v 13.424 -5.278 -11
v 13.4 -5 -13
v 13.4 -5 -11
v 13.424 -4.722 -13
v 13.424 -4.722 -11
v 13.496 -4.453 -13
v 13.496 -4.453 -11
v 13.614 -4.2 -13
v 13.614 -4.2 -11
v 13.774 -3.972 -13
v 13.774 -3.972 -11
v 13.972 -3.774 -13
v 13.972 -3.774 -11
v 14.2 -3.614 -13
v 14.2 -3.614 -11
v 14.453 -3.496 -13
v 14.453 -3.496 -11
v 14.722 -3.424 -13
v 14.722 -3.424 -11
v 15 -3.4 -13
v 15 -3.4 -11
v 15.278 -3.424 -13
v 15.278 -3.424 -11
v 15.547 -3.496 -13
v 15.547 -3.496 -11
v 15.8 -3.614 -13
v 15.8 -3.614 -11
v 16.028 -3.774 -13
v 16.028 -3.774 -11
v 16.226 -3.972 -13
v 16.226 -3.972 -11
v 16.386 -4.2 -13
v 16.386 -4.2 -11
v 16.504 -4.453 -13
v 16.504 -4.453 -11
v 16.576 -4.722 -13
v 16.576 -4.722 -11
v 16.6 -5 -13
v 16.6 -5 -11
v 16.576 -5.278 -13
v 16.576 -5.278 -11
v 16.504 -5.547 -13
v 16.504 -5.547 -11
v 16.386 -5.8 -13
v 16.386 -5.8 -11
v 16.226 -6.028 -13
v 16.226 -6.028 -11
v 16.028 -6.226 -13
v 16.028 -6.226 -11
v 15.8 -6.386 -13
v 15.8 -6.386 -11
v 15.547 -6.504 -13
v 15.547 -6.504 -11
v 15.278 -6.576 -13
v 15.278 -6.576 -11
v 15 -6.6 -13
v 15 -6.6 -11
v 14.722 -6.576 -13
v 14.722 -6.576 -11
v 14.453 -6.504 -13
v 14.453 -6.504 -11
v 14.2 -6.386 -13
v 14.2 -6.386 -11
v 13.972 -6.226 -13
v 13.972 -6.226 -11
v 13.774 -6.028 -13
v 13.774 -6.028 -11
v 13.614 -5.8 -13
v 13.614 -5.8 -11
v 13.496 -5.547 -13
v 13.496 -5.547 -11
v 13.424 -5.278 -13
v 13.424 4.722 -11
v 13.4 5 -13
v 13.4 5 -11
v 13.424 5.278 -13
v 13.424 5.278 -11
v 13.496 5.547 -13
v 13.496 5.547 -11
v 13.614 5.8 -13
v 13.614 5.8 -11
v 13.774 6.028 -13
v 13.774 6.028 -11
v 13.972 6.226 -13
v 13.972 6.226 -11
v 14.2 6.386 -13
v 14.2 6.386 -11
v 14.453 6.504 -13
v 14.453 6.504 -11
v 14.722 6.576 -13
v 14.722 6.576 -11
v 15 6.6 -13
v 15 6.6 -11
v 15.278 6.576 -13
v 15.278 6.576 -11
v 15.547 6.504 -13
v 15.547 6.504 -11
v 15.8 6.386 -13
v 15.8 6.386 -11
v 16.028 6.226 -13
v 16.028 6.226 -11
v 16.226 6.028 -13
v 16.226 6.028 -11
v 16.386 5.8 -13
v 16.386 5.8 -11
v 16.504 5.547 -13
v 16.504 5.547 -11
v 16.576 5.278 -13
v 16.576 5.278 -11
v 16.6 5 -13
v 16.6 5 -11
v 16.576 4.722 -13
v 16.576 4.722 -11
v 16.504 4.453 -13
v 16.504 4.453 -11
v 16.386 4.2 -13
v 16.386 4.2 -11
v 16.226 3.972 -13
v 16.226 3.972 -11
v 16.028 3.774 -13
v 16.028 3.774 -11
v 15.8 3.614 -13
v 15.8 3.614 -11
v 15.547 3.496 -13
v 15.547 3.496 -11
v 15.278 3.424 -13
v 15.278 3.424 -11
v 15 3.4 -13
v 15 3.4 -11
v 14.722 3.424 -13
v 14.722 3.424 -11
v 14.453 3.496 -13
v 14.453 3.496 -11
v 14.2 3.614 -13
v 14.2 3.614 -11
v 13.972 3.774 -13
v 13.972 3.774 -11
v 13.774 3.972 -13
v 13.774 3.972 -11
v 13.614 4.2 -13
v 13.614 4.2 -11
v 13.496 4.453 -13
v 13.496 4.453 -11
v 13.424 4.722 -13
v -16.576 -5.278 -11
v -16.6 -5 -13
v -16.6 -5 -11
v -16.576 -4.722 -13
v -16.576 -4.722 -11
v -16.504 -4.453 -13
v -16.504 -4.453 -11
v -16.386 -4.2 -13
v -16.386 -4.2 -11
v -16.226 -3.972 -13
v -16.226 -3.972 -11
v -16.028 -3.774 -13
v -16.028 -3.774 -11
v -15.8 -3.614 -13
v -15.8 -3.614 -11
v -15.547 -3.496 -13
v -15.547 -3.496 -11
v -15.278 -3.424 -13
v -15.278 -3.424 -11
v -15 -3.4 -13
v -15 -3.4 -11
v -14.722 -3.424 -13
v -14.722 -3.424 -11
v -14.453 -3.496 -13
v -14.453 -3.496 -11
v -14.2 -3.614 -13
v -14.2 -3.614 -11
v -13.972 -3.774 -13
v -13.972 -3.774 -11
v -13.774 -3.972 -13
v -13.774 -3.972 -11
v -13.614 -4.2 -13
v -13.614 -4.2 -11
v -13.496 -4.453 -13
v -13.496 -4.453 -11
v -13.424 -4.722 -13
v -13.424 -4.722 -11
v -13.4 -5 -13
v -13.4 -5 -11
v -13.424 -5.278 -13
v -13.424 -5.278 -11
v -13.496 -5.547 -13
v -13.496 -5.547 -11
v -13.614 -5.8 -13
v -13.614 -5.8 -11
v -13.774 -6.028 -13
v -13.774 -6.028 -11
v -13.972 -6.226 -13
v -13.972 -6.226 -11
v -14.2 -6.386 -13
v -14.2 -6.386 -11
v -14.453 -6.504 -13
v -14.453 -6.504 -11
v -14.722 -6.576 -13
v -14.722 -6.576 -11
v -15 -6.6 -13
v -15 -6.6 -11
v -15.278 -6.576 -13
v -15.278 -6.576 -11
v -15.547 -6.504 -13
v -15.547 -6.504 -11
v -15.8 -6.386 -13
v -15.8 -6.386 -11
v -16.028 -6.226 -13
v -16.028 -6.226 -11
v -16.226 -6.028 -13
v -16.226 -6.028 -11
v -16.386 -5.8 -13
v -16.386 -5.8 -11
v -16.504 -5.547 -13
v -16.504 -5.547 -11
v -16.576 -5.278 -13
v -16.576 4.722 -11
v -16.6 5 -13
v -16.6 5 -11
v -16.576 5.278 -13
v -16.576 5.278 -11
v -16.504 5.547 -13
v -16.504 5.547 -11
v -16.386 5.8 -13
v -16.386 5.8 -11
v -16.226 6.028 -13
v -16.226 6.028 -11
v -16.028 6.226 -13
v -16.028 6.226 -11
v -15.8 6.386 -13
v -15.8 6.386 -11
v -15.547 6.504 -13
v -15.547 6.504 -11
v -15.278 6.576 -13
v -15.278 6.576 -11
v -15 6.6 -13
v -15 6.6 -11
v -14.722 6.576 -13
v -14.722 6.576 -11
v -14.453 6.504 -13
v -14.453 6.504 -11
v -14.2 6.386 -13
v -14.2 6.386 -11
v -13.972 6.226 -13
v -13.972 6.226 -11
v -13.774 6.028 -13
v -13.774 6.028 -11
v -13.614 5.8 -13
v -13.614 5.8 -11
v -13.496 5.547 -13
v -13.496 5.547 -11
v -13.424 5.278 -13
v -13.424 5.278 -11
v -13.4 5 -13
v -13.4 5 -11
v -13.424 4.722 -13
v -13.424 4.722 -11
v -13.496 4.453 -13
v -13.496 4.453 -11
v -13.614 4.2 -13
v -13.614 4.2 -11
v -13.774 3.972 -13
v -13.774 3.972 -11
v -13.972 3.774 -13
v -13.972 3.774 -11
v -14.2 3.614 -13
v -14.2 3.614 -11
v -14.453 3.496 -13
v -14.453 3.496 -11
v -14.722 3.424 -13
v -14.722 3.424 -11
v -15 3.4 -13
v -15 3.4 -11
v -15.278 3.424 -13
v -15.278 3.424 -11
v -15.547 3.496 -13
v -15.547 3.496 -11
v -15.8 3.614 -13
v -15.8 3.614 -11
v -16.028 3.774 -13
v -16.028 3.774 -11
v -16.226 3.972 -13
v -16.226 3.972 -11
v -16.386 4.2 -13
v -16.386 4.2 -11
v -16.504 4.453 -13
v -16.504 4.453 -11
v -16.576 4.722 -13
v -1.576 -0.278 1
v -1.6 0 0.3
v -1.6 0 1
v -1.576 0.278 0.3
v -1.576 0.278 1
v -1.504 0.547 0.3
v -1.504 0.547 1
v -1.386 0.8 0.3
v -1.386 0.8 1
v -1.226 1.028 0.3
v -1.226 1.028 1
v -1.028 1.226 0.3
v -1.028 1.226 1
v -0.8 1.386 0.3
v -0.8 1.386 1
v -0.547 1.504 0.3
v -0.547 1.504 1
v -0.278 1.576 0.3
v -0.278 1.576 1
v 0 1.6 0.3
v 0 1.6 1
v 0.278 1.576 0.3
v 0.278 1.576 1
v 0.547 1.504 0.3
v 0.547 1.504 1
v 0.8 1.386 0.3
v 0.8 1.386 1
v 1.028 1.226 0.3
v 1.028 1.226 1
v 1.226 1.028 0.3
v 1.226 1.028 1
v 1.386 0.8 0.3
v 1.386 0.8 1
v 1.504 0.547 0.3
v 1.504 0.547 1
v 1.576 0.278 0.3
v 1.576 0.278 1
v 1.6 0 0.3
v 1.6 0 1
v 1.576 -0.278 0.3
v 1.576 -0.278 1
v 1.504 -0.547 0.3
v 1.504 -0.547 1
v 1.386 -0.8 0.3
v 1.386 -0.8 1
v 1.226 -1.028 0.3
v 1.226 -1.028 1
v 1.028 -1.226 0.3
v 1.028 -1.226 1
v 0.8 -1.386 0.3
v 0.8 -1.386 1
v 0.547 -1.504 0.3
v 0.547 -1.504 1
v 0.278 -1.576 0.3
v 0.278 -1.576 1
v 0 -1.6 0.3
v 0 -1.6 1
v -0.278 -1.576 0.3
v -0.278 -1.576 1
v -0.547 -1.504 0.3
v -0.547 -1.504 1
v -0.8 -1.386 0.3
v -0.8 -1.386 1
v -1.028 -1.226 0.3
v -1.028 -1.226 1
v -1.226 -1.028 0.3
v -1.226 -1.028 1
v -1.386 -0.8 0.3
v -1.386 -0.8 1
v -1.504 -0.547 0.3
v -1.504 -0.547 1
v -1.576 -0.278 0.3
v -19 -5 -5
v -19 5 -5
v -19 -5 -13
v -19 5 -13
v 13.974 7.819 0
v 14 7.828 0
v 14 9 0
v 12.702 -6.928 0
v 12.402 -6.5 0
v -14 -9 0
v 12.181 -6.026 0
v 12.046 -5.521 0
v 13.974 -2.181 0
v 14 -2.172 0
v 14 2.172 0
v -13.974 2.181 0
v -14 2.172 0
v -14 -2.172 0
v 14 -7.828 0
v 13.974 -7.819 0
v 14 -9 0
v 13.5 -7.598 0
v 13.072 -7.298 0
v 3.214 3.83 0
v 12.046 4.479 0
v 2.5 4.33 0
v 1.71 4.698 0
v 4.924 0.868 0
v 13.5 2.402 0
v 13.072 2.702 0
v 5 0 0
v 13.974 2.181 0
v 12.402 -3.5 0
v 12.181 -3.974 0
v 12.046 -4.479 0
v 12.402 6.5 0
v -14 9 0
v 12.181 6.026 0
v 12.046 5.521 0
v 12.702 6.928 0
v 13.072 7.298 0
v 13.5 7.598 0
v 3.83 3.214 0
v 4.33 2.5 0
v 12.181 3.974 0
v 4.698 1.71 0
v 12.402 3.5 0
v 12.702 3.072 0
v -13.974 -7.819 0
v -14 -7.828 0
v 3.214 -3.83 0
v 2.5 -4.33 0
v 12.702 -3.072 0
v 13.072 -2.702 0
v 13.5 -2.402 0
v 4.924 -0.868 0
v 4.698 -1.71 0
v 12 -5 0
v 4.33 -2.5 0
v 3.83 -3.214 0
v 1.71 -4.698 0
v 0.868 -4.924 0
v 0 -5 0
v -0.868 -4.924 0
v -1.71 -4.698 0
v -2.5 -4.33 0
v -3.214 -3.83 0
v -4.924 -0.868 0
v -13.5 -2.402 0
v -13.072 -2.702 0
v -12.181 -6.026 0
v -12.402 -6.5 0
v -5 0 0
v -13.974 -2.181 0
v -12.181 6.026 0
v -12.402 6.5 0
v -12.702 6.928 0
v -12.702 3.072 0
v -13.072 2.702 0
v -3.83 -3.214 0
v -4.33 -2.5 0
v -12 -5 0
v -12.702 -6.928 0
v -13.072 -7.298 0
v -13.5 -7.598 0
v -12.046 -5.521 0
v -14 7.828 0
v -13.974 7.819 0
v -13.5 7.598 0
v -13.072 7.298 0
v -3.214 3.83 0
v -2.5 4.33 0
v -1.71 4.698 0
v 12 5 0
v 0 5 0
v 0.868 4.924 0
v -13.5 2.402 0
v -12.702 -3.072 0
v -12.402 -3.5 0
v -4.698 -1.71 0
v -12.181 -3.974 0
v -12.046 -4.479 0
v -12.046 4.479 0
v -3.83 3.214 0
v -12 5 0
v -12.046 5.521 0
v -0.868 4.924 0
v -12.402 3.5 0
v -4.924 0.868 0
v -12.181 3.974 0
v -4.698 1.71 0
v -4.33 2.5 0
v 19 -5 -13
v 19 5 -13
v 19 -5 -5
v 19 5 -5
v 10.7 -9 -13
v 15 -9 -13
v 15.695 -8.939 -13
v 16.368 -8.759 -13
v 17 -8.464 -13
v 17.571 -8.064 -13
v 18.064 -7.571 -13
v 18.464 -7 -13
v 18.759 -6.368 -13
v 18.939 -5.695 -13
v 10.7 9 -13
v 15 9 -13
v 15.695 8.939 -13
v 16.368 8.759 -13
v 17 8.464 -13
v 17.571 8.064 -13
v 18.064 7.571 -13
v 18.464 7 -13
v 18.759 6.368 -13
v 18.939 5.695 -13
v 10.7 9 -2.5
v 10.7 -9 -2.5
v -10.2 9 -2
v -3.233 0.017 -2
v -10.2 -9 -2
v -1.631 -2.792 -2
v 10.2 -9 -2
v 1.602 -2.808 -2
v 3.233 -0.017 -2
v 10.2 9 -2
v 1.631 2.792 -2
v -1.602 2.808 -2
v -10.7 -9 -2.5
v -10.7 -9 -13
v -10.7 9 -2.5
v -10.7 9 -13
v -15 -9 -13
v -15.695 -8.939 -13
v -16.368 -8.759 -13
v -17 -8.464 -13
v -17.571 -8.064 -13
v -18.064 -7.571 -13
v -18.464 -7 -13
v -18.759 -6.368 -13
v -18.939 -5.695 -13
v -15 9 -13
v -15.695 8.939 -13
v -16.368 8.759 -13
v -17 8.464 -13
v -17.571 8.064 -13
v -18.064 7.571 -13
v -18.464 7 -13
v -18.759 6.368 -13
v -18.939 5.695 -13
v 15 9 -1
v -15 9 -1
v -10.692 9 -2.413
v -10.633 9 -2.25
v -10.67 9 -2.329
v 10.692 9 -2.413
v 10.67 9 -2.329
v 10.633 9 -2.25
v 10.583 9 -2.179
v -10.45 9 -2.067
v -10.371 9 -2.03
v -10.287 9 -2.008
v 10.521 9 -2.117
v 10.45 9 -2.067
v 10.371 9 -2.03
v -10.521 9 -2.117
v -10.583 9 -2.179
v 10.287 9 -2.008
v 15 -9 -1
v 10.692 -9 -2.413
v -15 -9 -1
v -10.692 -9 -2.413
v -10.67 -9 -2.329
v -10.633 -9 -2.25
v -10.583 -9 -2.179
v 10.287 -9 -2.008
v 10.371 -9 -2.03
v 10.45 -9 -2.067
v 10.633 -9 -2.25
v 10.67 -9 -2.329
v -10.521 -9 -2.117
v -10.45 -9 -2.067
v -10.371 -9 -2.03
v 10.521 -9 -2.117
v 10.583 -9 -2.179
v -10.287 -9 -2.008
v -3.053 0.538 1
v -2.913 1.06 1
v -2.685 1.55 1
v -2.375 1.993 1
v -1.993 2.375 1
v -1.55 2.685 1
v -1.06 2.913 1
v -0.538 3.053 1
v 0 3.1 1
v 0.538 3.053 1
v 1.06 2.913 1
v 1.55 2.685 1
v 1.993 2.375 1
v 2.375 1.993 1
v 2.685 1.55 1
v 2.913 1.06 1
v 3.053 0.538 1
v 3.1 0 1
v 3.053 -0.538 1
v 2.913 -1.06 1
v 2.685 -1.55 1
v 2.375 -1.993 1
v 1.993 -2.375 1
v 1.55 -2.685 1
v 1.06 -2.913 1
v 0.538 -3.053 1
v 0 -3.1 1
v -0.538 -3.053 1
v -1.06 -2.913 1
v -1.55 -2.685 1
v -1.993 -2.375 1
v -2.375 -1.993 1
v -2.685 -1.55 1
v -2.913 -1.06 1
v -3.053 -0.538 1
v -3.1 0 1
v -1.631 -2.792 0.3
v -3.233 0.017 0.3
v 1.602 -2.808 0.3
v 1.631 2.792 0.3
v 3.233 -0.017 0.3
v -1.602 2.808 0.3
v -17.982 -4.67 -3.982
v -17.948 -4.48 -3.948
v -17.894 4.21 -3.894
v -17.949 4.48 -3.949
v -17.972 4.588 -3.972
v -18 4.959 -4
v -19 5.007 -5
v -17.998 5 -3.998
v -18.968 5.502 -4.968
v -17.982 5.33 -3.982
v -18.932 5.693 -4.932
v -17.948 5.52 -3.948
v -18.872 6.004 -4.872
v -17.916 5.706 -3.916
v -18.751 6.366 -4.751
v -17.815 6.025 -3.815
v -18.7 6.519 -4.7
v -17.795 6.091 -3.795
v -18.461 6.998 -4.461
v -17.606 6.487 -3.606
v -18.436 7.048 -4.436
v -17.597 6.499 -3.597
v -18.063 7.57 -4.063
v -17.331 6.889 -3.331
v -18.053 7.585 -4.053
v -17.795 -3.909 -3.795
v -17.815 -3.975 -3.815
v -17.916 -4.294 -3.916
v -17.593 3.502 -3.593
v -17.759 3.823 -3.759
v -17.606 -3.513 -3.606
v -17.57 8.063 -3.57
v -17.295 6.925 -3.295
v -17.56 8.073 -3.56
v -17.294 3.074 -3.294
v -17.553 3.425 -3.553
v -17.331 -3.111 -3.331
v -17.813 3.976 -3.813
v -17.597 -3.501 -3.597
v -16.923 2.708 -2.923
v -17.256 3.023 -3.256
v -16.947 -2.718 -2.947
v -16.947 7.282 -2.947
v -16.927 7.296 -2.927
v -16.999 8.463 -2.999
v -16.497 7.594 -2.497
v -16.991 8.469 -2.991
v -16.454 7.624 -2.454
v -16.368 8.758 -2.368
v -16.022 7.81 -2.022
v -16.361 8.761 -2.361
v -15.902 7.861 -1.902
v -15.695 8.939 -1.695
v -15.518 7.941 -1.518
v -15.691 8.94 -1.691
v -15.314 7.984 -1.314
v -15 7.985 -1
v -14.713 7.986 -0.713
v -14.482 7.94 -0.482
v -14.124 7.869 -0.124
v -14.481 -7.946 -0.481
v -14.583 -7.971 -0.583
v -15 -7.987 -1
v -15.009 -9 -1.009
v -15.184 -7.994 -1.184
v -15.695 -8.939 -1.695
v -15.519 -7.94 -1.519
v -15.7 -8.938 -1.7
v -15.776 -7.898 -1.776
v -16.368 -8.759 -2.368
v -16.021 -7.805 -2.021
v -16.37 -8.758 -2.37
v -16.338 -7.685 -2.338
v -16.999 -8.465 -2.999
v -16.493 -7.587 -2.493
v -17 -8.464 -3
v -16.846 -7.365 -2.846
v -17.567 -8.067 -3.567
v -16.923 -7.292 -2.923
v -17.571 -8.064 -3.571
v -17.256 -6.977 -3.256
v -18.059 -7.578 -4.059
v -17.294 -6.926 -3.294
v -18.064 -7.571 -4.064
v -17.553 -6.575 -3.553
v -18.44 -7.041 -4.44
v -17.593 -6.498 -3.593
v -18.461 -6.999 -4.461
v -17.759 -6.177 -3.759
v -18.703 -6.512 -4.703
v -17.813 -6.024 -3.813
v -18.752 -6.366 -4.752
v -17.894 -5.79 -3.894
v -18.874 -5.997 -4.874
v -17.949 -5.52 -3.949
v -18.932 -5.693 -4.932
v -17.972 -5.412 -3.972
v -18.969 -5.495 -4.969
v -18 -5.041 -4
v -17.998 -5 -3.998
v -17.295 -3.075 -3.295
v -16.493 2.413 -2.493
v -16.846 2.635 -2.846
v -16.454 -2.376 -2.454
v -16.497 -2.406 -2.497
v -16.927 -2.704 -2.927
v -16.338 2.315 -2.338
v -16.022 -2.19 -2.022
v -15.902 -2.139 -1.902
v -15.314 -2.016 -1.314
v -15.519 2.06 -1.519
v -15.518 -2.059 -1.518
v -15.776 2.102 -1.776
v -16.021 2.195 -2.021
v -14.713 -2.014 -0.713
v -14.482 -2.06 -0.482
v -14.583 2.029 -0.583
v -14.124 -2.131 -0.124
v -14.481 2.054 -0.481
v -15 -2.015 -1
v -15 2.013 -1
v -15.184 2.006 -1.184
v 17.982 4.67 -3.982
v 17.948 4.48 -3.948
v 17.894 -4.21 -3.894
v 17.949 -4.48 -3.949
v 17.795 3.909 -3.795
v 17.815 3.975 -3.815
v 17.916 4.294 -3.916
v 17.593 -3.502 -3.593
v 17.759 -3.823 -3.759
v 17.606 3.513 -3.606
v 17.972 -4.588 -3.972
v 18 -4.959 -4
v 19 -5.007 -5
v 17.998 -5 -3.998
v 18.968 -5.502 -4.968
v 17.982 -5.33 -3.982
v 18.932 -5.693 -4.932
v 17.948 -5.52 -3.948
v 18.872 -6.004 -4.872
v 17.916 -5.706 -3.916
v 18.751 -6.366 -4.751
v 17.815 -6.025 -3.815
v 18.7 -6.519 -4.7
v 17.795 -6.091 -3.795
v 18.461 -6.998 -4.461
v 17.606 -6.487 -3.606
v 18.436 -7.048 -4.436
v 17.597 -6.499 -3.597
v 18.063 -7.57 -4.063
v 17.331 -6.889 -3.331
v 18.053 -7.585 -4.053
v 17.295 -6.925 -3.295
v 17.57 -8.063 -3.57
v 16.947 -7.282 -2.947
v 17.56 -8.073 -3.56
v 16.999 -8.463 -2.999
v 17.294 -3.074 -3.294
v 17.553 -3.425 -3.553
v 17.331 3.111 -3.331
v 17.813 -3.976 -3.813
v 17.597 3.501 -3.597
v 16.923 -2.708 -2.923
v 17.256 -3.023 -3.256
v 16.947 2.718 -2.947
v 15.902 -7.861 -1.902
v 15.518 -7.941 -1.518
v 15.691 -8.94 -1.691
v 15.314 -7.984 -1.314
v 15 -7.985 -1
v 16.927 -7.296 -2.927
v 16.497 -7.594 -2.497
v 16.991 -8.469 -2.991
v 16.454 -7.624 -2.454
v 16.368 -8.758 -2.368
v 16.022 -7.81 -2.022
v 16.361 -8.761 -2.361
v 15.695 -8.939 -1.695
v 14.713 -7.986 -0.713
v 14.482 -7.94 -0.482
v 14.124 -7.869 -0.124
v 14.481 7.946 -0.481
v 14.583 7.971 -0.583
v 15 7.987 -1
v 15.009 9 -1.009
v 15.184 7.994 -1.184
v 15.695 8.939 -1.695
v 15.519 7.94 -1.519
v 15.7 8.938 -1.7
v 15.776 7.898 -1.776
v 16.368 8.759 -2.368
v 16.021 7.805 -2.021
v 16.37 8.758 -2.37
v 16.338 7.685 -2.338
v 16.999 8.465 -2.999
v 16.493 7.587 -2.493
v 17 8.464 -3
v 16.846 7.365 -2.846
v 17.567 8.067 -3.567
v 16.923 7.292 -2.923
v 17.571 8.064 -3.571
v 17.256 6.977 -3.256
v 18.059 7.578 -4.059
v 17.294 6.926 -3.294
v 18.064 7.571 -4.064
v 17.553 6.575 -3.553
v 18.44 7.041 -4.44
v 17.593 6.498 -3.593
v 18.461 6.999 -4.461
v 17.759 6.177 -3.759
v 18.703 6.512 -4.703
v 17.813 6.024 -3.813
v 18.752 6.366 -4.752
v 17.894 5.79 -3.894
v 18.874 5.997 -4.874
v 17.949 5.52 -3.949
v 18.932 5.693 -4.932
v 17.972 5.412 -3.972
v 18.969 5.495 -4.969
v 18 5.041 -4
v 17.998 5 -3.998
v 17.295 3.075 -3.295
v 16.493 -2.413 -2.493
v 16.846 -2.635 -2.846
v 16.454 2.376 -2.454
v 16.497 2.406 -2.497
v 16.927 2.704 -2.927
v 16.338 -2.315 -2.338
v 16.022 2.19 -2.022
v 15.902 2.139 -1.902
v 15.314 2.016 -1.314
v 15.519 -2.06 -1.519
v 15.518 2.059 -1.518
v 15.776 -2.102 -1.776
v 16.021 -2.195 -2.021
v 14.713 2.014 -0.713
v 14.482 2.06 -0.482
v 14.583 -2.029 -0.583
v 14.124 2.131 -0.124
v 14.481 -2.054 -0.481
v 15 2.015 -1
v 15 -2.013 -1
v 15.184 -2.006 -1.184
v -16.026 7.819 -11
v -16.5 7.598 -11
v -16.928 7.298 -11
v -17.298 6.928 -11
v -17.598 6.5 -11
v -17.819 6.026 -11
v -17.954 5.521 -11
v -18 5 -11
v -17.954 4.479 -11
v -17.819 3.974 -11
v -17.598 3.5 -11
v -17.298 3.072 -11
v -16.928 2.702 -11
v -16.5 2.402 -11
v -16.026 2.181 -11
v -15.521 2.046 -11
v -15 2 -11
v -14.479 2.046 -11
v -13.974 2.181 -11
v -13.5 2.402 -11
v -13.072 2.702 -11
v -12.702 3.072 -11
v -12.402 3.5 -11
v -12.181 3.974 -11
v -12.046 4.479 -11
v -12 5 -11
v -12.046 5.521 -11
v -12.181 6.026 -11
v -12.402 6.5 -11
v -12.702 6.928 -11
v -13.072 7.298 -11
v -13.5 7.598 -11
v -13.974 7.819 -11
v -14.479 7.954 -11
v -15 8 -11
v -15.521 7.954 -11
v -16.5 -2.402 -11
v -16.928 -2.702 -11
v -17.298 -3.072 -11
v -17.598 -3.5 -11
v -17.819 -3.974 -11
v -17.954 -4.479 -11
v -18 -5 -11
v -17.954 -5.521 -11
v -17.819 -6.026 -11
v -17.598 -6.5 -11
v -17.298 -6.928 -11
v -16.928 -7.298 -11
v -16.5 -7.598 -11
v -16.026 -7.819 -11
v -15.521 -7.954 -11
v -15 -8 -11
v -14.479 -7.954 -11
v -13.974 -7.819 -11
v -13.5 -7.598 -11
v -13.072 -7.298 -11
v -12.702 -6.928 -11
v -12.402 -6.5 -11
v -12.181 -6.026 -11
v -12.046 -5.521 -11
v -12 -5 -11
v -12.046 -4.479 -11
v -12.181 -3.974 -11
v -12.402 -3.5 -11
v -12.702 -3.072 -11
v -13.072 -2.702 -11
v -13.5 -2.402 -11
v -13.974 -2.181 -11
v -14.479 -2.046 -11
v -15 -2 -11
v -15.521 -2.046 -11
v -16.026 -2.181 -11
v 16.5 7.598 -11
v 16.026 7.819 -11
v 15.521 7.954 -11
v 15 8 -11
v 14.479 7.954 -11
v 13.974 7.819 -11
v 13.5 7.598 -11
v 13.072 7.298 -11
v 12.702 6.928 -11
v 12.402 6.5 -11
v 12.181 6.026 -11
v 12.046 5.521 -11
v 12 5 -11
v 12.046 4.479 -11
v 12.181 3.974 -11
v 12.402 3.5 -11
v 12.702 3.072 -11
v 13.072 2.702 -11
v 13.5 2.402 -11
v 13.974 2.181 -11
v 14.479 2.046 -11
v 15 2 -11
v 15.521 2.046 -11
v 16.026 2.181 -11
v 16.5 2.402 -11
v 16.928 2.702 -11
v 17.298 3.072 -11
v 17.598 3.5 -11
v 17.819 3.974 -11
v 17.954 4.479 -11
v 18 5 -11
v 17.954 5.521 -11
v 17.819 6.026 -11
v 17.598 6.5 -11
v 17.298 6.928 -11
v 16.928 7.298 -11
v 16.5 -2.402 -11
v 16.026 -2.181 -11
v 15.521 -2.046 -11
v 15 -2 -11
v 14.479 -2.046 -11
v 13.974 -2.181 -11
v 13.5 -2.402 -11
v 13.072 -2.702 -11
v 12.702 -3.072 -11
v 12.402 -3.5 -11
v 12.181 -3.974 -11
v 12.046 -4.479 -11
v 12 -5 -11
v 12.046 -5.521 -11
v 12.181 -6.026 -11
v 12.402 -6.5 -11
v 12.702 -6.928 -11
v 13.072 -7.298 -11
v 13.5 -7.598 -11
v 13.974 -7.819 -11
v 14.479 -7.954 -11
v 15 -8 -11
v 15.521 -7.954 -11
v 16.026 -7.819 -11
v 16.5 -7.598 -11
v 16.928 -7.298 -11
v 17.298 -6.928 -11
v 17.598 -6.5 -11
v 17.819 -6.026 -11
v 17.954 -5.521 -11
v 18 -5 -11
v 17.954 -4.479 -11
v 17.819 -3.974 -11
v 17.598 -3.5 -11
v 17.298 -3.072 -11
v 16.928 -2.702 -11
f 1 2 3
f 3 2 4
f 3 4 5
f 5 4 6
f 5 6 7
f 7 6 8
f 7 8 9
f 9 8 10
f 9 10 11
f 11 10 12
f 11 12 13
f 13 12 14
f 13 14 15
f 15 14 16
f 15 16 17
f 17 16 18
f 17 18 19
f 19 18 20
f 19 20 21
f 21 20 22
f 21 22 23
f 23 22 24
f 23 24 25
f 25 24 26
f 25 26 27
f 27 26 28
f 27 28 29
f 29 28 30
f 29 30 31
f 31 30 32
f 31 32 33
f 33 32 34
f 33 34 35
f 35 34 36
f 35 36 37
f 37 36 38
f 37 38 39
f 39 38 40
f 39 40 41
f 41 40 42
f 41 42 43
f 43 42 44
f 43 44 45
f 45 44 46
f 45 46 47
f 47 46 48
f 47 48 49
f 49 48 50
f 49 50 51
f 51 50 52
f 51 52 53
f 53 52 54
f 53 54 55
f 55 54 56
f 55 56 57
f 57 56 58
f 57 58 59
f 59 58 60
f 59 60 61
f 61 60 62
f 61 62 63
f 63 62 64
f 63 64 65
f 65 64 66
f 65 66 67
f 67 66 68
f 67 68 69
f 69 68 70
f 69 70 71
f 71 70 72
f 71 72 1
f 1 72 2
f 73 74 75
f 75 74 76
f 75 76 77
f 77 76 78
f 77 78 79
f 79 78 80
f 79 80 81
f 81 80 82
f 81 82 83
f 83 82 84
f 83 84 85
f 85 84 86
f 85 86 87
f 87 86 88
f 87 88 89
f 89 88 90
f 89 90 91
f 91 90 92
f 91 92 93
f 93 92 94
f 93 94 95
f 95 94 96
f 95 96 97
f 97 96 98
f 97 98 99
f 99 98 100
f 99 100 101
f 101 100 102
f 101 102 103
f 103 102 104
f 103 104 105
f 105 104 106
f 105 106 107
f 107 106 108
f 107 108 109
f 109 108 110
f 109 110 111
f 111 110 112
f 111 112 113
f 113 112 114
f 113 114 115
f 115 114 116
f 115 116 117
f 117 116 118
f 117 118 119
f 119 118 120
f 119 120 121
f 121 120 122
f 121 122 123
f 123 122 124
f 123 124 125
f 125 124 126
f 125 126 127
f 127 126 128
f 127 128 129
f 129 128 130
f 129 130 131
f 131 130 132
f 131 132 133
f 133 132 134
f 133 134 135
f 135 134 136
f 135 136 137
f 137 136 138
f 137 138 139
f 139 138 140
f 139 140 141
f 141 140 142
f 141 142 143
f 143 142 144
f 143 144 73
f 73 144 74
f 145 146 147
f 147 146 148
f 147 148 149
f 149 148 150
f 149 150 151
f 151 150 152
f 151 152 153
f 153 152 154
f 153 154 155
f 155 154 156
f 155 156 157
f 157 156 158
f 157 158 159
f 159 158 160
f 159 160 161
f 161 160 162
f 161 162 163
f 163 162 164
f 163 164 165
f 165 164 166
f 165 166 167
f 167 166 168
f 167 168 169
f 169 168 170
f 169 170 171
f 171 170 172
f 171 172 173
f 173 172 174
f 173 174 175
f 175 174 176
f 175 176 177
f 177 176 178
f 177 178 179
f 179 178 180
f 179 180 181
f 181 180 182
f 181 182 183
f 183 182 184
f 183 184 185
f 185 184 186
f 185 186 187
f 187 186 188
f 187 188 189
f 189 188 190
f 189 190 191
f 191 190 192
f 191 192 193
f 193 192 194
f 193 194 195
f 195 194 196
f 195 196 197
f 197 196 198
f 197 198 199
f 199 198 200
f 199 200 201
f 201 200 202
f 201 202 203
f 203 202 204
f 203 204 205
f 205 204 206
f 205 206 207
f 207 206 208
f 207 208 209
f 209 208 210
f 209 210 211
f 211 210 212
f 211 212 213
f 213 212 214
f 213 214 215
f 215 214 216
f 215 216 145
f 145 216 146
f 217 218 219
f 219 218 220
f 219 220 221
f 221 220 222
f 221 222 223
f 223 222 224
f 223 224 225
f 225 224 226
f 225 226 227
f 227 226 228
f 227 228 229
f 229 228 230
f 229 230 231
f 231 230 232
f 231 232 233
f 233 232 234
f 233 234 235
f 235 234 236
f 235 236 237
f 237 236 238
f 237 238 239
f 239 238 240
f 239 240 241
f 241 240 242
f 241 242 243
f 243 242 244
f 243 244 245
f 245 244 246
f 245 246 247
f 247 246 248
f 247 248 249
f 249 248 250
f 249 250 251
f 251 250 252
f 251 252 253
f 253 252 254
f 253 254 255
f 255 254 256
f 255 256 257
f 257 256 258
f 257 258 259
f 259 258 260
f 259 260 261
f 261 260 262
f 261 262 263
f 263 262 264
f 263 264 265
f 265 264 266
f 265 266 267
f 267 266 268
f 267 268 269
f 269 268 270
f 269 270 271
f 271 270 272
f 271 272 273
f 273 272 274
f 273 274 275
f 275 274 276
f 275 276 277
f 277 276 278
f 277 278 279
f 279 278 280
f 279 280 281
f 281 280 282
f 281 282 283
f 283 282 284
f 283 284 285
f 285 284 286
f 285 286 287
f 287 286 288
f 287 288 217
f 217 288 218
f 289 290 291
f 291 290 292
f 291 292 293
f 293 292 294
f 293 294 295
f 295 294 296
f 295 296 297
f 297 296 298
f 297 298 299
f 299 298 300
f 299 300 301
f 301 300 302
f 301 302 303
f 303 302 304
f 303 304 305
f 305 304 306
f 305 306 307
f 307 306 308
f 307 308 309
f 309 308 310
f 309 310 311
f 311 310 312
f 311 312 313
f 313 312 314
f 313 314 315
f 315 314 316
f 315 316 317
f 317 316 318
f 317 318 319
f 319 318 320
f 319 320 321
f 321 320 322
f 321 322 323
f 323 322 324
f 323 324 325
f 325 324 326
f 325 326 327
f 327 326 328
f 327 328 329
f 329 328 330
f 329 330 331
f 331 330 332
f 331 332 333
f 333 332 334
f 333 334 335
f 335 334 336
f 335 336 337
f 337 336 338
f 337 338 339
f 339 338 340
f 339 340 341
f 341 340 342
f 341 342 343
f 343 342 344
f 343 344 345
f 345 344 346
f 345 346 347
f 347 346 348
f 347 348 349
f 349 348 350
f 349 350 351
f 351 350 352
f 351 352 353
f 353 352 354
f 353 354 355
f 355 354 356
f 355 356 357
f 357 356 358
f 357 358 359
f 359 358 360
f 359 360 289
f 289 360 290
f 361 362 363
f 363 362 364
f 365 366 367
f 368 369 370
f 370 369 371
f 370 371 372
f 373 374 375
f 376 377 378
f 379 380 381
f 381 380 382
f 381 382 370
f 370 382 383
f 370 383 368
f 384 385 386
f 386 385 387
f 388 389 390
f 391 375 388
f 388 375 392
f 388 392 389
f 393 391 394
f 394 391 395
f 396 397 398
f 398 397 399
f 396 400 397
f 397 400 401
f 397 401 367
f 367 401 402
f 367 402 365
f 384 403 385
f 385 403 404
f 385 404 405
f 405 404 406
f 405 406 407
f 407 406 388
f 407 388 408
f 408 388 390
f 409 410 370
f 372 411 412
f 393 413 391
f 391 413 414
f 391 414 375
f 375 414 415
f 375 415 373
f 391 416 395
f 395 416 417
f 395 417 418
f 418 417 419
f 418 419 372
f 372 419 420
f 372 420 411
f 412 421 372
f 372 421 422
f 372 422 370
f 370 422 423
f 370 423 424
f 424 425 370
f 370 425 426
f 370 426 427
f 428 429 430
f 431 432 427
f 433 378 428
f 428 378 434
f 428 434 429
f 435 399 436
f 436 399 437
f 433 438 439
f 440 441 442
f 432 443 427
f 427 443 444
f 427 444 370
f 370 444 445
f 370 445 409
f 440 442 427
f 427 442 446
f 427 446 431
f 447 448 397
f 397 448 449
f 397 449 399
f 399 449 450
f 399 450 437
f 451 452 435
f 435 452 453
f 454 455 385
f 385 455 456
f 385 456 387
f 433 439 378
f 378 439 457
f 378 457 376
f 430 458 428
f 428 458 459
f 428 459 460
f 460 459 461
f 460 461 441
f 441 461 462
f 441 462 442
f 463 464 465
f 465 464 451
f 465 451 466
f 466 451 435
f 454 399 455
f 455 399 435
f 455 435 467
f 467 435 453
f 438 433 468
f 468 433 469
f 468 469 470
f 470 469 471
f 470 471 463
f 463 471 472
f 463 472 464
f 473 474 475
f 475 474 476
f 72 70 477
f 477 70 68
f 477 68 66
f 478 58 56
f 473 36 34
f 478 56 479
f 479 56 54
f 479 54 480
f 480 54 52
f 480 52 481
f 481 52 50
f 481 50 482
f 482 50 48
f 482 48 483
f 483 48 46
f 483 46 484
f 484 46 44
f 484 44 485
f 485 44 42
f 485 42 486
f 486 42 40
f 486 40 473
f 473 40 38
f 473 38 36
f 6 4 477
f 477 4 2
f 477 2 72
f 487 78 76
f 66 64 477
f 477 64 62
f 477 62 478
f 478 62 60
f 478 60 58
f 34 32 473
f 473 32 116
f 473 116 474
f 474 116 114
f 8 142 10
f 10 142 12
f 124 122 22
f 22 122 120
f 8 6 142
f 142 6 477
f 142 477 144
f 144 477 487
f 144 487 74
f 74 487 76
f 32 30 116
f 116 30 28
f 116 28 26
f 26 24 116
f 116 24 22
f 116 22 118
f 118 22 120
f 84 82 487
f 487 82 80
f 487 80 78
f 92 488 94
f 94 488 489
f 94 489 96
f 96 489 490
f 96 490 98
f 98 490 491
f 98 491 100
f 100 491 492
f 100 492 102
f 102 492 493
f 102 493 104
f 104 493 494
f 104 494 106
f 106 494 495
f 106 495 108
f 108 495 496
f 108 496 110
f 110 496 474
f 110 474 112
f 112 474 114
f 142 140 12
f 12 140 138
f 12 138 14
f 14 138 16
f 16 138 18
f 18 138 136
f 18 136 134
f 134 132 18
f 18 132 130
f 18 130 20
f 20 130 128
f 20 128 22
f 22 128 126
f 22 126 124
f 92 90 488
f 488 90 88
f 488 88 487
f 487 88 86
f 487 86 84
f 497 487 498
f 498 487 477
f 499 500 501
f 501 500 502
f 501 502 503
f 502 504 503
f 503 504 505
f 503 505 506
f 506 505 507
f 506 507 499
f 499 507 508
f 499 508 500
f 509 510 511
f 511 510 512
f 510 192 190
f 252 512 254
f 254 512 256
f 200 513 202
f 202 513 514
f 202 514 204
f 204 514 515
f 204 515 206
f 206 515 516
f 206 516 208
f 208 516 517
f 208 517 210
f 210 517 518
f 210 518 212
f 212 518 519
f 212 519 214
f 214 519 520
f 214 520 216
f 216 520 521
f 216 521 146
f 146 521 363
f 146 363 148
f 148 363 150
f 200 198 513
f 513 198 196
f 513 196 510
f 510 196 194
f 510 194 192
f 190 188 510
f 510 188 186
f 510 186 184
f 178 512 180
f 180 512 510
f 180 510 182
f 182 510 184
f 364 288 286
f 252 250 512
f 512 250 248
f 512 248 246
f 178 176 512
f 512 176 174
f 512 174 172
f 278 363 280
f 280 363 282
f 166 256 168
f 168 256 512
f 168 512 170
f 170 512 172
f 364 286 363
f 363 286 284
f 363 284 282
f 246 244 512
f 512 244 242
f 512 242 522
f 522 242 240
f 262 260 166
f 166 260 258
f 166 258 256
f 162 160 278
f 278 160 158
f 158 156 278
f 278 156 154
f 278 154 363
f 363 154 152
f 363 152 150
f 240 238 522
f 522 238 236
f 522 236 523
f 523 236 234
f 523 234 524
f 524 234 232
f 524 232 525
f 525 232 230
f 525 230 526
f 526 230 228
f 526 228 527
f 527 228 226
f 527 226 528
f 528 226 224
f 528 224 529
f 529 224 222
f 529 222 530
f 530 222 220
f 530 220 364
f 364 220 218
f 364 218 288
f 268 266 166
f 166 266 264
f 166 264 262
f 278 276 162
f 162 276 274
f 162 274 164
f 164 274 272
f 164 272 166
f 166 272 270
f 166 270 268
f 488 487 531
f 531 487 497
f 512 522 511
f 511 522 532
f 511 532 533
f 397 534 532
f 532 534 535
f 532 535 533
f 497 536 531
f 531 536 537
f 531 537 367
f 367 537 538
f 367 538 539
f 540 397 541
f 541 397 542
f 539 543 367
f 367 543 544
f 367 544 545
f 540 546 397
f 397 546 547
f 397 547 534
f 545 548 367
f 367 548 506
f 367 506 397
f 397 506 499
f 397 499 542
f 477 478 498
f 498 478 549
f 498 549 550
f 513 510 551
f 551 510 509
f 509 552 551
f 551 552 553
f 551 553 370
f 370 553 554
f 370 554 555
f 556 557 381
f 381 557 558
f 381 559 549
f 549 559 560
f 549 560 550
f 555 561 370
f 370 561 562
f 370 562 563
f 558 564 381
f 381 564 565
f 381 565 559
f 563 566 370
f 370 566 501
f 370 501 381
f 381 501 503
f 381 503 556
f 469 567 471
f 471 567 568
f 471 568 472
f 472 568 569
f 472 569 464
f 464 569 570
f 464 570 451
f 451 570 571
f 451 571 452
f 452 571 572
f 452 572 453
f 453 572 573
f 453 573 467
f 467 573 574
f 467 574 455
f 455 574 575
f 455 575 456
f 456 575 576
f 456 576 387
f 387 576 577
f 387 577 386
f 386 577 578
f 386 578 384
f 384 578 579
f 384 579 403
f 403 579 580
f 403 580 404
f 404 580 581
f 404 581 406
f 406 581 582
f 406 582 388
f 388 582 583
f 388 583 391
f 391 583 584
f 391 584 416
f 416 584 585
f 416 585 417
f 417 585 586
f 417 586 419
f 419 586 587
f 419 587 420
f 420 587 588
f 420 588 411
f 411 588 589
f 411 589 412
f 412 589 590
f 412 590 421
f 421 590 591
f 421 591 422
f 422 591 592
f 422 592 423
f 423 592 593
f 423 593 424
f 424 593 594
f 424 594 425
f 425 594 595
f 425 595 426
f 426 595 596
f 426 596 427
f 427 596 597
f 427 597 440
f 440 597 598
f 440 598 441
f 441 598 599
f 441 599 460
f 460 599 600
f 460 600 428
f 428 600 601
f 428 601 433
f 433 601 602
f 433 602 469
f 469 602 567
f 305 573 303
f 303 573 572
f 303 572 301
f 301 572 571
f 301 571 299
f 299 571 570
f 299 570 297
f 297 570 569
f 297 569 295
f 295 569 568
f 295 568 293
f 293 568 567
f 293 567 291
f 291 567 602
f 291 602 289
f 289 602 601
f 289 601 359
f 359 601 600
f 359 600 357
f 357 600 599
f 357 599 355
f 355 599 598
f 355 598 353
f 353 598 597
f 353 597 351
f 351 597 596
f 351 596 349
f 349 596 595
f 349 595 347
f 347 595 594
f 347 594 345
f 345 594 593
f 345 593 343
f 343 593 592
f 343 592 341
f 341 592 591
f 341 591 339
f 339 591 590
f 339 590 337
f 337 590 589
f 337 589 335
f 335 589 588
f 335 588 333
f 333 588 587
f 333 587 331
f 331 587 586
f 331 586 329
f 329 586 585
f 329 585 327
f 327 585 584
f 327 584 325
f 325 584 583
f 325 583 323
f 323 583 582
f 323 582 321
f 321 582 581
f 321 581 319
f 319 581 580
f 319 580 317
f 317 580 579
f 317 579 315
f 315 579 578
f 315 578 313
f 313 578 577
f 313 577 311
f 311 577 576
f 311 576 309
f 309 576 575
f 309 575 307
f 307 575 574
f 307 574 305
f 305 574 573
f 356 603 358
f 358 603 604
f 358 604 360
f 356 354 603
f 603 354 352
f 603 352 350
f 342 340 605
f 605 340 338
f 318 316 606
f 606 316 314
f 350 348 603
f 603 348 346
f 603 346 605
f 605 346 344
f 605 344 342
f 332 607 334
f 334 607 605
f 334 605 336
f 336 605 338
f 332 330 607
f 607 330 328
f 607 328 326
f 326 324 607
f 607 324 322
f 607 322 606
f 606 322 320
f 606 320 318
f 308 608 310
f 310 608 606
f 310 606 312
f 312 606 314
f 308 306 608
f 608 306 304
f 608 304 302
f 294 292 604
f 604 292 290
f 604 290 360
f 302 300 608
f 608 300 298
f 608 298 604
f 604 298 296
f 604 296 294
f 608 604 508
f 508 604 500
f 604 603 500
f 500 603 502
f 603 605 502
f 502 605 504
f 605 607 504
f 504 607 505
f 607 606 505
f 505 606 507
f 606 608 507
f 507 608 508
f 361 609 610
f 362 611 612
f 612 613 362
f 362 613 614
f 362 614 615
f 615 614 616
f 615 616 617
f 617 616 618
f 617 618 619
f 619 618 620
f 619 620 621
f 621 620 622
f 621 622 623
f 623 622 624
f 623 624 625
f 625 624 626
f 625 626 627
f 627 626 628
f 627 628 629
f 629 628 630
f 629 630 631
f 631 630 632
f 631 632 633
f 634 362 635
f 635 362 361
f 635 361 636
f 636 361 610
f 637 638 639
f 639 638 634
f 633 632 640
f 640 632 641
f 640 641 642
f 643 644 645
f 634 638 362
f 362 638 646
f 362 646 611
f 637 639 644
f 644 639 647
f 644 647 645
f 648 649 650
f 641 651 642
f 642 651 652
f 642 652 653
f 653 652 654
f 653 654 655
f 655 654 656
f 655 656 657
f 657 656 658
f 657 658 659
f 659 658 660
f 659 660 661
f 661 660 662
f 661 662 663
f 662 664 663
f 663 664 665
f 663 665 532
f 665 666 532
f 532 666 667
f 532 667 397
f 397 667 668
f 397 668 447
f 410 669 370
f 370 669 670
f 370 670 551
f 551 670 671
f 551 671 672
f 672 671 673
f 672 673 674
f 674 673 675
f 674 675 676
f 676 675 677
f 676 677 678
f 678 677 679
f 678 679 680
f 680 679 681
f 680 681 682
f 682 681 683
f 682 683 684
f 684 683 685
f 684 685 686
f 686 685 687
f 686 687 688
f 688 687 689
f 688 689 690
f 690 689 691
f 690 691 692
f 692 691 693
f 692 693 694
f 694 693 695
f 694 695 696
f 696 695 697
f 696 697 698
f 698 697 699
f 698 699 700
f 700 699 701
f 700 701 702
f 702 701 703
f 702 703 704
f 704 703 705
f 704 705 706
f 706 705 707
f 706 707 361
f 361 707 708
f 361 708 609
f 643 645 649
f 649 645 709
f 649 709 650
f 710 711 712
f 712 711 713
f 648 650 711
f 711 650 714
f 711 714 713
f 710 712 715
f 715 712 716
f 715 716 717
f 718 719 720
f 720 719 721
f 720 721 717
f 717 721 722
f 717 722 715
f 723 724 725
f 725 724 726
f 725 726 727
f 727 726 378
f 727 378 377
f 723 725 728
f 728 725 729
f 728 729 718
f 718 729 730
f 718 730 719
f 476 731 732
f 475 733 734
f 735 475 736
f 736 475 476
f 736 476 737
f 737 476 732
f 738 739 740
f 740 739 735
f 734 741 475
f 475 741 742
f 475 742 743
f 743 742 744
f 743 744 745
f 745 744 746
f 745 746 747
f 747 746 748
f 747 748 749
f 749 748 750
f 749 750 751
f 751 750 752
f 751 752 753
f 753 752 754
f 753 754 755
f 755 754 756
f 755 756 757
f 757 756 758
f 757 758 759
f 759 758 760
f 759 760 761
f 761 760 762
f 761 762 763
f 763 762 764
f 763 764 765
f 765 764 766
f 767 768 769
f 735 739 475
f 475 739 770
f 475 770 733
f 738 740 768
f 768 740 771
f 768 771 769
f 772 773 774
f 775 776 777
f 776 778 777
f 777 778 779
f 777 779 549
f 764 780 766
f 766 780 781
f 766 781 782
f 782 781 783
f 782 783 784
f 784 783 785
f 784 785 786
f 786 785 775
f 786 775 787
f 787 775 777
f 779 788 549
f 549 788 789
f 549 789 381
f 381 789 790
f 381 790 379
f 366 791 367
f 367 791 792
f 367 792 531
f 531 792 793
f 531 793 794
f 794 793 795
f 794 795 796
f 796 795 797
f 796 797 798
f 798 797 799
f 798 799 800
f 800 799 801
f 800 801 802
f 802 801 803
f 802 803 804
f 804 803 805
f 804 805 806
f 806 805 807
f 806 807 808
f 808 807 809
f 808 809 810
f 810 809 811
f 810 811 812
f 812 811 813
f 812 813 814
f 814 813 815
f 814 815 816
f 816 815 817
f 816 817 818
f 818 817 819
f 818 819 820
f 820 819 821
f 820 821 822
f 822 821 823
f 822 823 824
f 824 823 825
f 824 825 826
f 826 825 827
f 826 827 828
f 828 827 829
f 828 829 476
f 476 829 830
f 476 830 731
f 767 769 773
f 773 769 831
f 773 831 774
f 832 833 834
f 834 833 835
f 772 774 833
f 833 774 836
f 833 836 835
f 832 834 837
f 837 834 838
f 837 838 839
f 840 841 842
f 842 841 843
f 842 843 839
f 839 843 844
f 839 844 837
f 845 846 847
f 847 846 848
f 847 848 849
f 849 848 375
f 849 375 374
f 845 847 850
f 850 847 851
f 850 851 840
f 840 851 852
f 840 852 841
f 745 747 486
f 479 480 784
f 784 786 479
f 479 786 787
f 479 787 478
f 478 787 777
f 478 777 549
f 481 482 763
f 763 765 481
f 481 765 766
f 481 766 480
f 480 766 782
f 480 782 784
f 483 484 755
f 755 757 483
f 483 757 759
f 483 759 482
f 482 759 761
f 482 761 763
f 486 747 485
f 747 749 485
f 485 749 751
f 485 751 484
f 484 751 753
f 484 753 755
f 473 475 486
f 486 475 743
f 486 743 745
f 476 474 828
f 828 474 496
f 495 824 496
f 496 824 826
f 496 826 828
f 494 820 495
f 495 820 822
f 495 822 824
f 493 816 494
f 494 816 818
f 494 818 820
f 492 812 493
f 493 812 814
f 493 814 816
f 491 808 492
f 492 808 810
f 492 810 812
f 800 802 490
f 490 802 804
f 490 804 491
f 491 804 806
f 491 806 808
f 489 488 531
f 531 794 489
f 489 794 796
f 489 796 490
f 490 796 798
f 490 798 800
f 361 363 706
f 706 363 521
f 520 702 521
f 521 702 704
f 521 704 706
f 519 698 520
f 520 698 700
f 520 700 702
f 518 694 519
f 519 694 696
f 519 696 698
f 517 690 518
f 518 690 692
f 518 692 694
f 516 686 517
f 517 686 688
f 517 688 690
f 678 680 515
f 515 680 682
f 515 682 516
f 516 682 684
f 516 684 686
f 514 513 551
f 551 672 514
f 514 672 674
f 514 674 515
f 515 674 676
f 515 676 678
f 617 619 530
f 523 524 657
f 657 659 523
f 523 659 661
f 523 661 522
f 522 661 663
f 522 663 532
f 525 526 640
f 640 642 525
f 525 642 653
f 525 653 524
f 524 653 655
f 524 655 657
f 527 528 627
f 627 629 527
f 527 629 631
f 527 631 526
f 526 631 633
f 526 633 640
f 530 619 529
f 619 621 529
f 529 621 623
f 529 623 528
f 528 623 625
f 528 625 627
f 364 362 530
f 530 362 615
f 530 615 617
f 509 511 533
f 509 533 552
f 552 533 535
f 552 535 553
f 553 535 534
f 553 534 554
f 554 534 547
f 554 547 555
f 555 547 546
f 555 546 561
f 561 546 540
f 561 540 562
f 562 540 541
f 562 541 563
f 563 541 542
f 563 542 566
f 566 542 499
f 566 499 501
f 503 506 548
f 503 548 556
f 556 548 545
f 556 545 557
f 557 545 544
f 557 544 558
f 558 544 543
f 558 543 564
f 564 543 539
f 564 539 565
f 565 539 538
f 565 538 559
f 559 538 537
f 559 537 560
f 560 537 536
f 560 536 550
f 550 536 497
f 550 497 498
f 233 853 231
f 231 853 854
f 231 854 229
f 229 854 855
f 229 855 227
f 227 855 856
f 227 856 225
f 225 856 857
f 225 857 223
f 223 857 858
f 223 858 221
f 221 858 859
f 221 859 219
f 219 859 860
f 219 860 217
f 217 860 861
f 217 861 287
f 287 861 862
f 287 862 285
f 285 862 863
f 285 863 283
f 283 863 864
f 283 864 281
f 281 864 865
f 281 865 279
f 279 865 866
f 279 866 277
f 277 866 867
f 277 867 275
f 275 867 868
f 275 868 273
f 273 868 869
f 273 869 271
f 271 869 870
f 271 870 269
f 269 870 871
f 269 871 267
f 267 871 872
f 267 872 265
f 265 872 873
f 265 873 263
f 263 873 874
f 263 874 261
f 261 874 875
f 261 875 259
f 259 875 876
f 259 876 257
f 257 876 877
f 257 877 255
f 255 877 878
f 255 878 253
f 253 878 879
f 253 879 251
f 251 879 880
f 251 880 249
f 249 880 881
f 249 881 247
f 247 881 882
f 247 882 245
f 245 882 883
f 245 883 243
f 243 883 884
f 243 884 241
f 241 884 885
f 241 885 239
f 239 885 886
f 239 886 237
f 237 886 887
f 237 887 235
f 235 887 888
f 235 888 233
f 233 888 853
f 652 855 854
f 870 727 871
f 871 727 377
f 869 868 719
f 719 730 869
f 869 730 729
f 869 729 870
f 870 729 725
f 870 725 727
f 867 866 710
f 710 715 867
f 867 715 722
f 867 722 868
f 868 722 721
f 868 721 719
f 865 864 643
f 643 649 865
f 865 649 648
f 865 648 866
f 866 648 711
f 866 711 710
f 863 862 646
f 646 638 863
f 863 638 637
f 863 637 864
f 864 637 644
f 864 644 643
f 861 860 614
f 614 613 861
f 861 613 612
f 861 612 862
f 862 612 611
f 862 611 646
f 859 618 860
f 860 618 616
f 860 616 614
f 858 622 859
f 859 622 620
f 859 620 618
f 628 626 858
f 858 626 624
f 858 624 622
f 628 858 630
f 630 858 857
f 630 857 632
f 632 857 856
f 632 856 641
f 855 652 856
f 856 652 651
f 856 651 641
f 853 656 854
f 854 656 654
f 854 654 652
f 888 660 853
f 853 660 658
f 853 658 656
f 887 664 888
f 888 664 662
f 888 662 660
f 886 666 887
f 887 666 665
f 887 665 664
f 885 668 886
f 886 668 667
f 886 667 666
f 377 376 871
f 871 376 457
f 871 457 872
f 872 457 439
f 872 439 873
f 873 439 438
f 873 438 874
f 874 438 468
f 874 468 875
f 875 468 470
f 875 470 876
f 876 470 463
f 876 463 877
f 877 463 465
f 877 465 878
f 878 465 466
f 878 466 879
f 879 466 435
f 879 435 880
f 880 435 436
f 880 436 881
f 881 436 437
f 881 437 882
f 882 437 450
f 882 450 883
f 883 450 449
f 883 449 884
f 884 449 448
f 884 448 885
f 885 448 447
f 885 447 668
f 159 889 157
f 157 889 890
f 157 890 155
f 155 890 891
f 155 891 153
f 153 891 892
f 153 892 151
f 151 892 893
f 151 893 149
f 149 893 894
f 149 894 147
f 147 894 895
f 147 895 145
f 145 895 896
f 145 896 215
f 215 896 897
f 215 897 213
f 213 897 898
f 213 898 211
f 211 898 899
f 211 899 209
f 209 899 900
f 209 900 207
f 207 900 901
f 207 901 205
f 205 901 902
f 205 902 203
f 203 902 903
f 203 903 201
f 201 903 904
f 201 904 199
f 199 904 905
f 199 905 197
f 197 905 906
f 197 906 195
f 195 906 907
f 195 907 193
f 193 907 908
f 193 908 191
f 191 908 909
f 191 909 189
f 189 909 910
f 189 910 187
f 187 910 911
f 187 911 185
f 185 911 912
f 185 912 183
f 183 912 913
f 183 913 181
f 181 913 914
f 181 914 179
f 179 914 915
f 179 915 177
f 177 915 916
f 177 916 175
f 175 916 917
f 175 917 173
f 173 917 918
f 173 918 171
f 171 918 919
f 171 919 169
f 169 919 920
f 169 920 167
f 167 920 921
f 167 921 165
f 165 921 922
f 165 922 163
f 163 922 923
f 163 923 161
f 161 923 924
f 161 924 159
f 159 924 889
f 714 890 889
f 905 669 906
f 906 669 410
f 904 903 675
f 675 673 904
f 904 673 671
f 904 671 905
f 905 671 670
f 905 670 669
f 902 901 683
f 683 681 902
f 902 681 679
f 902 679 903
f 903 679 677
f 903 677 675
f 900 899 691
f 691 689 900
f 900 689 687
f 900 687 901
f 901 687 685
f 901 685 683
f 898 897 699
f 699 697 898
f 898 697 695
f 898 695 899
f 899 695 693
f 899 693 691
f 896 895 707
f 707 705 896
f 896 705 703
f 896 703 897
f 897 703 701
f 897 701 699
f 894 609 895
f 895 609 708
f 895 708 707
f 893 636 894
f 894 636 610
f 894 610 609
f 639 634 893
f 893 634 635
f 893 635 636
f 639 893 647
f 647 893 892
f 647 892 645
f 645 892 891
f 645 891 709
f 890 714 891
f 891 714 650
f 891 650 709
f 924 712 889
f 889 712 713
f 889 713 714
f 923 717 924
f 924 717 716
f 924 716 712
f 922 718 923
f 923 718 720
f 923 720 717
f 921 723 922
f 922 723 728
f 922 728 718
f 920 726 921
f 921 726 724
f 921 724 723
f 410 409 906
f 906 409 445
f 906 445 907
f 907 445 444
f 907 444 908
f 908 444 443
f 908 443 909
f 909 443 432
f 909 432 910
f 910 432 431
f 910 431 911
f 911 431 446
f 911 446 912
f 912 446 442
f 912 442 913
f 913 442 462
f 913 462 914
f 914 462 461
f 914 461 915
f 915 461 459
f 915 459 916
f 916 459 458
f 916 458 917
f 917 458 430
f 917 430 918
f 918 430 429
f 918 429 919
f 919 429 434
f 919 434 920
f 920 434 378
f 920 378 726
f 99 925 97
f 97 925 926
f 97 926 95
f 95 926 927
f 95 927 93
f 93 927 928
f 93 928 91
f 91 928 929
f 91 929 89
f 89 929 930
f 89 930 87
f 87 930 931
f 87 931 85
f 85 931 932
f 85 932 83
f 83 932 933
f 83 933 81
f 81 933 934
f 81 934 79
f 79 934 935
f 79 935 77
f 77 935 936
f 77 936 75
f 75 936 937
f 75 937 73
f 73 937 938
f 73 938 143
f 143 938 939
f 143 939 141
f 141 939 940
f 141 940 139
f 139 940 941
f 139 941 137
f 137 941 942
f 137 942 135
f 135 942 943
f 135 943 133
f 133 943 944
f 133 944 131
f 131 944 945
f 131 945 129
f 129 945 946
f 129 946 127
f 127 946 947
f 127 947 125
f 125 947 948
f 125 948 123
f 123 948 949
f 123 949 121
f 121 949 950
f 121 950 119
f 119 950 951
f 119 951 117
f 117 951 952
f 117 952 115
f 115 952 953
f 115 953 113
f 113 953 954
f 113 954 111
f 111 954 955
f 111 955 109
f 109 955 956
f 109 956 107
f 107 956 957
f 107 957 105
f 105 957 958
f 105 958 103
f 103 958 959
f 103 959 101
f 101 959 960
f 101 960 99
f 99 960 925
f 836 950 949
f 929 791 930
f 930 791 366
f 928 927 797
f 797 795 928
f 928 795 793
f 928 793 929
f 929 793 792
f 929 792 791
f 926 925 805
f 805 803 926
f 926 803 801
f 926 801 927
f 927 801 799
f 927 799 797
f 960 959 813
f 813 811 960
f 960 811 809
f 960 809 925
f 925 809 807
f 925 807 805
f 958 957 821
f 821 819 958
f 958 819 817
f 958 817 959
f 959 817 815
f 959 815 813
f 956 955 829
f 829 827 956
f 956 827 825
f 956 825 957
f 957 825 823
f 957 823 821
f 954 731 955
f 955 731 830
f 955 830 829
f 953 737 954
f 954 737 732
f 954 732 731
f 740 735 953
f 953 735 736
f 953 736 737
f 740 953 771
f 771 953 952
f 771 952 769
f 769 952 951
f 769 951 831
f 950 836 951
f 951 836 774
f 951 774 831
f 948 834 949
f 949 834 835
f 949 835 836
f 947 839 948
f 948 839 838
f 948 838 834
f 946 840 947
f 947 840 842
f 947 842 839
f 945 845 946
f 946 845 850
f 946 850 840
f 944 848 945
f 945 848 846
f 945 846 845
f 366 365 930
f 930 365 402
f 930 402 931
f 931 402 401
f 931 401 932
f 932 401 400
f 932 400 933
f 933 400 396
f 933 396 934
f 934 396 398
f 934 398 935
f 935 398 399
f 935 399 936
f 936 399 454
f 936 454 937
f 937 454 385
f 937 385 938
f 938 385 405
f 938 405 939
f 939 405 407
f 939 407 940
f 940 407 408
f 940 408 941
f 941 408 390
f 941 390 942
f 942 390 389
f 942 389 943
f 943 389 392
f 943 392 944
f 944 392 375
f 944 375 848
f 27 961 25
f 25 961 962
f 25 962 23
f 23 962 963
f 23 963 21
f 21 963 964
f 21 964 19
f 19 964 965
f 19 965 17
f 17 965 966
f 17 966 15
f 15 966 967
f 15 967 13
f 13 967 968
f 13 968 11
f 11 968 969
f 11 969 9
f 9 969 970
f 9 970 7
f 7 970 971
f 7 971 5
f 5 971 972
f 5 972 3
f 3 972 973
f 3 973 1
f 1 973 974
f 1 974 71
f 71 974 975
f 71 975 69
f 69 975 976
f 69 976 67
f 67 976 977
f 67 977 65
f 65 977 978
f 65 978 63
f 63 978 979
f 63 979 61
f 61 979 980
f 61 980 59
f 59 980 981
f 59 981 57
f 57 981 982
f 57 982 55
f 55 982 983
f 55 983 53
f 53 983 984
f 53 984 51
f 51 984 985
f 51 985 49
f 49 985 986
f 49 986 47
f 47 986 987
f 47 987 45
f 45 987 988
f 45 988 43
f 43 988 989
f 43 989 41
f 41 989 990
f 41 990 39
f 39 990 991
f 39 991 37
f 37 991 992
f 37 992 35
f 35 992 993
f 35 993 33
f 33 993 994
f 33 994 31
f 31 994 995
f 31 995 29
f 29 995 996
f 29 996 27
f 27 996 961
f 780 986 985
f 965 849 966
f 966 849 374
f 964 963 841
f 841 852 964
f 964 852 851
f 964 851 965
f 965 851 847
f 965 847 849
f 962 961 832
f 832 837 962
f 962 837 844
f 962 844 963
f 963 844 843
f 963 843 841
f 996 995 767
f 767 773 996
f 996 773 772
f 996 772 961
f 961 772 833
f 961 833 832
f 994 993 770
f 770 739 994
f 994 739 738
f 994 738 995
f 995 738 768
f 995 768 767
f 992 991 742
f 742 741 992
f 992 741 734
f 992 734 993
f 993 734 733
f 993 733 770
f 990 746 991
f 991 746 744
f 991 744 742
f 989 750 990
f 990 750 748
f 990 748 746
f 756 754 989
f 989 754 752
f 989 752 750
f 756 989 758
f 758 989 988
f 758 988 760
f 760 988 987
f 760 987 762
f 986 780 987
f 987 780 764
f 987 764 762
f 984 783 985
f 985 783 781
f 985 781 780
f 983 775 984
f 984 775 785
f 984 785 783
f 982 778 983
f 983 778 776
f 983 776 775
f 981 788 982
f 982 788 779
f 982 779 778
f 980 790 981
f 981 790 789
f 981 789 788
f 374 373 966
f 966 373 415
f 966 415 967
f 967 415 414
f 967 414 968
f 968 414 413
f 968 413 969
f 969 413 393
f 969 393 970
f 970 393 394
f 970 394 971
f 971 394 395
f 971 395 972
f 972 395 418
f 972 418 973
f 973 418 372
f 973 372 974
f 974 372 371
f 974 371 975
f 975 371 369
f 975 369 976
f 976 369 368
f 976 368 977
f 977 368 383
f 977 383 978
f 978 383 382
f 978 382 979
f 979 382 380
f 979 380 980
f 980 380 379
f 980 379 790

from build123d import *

# Parameters (mm, degrees)
BOSS_EXTRUDE1_DEPTH     = 9
SKETCH2_R               = 1.6
CUT_EXTRUDE1_DEPTH      = 14
SKETCH3_R               = 1.6
CUT_EXTRUDE2_DEPTH      = 3
CUT_EXTRUDE3_DEPTH      = 2.3
CUT_EXTRUDE4_DEPTH      = 10
CUT_EXTRUDE4_DEPTH_BACK = 10
FILLET2_R               = 4
FILLET5_R               = 0.5
SKETCH11_R              = 3
CUT_EXTRUDE5_DEPTH      = 11


with BuildPart() as part:
    # Sketch1 → Boss-Extrude1 (new body, symmetric)
    with BuildSketch(Plane(origin=(0, 0, 0), x_dir=(1, 0, 0), z_dir=(0, 1, 0))):
        Polygon((10.7, 13), (19, 13), (19, 0), (-19, 0), (-19, 13), (-10.7, 13), (-10.7, 2), (10.7, 2), align=None)
    extrude(amount=BOSS_EXTRUDE1_DEPTH, both=True)

    # Sketch2 → Cut-Extrude1 (cut, through all)
    with BuildSketch(Plane(origin=(0, 0, -13), x_dir=(-1, 0, 0), z_dir=(0, 0, -1))):
        with Locations((-15, 5)):
            Circle(SKETCH2_R)
        with Locations((-15, -5)):
            Circle(SKETCH2_R)
        with Locations((15, 5)):
            Circle(SKETCH2_R)
        with Locations((15, -5)):
            Circle(SKETCH2_R)
    extrude(amount=-CUT_EXTRUDE1_DEPTH, mode=Mode.SUBTRACT)

    # Sketch3 → Cut-Extrude2 (cut, through all)
    with BuildSketch(Plane(origin=(0, 0, -2), x_dir=(-1, 0, 0), z_dir=(0, 0, -1))):
        Circle(SKETCH3_R)
    extrude(amount=-CUT_EXTRUDE2_DEPTH, mode=Mode.SUBTRACT)

    # Sketch9 → Revolve1 (revolve)
    with BuildSketch(Plane(origin=(0, 0, 0), x_dir=(0, 0, -1), z_dir=(1, 0, 0))):
        Polygon((0, 1.6), (0, 5), (-1, 3.1), (-1, 1.6), align=None)
    revolve(axis=Axis((0, 0, 0), (0, 0, 1)))

    # Sketch4 → Cut-Extrude3 (cut)
    with BuildSketch(Plane(origin=(0, 0, -2), x_dir=(-1, 0, 0), z_dir=(0, 0, -1))):
        Polygon((1.602042514, 2.808343483), (-1.631075541, 2.791581257), (-3.233118056, -0.016762226), (-1.602042514, -2.808343483), (1.631075541, -2.791581257), (3.233118056, 0.016762226), align=None)
    extrude(amount=-CUT_EXTRUDE3_DEPTH, mode=Mode.SUBTRACT)

    # Sketch10 → Cut-Extrude4 (cut, two sides)
    with BuildSketch(Plane(origin=(0, 0, 0), x_dir=(1, 0, 0), z_dir=(0, 1, 0))) as cut_extrude4_sk:
        Polygon((-19, 0), (-19, 5), (-14, 0), align=None)
        Polygon((14, 0), (19, 0), (19, 5), align=None)
    extrude(amount=CUT_EXTRUDE4_DEPTH, mode=Mode.SUBTRACT)
    extrude(cut_extrude4_sk.sketch, amount=-CUT_EXTRUDE4_DEPTH_BACK, mode=Mode.SUBTRACT)

    # Fillet2
    fillet2_edges = [part.edges().sort_by_distance(p)[0] for p in [
        (-19, -9, -9),
        (-19, 9, -9),
        (19, -9, -9),
        (19, 9, -9),
    ]]
    fillet(fillet2_edges, radius=FILLET2_R)

    # Fillet5
    fillet5_edges = [part.edges().sort_by_distance(p)[0] for p in [
        (-10.7, 0, -2),
        (10.7, 0, -2),
    ]]
    fillet(fillet5_edges, radius=FILLET5_R)

    # Sketch11 → Cut-Extrude5 (cut)
    with BuildSketch(Plane.XY):
        with Locations((-15, 5)):
            Circle(SKETCH11_R)
        with Locations((-15, -5)):
            Circle(SKETCH11_R)
        with Locations((15, 5)):
            Circle(SKETCH11_R)
        with Locations((15, -5)):
            Circle(SKETCH11_R)
    extrude(amount=-CUT_EXTRUDE5_DEPTH, mode=Mode.SUBTRACT)


solid = part.part
